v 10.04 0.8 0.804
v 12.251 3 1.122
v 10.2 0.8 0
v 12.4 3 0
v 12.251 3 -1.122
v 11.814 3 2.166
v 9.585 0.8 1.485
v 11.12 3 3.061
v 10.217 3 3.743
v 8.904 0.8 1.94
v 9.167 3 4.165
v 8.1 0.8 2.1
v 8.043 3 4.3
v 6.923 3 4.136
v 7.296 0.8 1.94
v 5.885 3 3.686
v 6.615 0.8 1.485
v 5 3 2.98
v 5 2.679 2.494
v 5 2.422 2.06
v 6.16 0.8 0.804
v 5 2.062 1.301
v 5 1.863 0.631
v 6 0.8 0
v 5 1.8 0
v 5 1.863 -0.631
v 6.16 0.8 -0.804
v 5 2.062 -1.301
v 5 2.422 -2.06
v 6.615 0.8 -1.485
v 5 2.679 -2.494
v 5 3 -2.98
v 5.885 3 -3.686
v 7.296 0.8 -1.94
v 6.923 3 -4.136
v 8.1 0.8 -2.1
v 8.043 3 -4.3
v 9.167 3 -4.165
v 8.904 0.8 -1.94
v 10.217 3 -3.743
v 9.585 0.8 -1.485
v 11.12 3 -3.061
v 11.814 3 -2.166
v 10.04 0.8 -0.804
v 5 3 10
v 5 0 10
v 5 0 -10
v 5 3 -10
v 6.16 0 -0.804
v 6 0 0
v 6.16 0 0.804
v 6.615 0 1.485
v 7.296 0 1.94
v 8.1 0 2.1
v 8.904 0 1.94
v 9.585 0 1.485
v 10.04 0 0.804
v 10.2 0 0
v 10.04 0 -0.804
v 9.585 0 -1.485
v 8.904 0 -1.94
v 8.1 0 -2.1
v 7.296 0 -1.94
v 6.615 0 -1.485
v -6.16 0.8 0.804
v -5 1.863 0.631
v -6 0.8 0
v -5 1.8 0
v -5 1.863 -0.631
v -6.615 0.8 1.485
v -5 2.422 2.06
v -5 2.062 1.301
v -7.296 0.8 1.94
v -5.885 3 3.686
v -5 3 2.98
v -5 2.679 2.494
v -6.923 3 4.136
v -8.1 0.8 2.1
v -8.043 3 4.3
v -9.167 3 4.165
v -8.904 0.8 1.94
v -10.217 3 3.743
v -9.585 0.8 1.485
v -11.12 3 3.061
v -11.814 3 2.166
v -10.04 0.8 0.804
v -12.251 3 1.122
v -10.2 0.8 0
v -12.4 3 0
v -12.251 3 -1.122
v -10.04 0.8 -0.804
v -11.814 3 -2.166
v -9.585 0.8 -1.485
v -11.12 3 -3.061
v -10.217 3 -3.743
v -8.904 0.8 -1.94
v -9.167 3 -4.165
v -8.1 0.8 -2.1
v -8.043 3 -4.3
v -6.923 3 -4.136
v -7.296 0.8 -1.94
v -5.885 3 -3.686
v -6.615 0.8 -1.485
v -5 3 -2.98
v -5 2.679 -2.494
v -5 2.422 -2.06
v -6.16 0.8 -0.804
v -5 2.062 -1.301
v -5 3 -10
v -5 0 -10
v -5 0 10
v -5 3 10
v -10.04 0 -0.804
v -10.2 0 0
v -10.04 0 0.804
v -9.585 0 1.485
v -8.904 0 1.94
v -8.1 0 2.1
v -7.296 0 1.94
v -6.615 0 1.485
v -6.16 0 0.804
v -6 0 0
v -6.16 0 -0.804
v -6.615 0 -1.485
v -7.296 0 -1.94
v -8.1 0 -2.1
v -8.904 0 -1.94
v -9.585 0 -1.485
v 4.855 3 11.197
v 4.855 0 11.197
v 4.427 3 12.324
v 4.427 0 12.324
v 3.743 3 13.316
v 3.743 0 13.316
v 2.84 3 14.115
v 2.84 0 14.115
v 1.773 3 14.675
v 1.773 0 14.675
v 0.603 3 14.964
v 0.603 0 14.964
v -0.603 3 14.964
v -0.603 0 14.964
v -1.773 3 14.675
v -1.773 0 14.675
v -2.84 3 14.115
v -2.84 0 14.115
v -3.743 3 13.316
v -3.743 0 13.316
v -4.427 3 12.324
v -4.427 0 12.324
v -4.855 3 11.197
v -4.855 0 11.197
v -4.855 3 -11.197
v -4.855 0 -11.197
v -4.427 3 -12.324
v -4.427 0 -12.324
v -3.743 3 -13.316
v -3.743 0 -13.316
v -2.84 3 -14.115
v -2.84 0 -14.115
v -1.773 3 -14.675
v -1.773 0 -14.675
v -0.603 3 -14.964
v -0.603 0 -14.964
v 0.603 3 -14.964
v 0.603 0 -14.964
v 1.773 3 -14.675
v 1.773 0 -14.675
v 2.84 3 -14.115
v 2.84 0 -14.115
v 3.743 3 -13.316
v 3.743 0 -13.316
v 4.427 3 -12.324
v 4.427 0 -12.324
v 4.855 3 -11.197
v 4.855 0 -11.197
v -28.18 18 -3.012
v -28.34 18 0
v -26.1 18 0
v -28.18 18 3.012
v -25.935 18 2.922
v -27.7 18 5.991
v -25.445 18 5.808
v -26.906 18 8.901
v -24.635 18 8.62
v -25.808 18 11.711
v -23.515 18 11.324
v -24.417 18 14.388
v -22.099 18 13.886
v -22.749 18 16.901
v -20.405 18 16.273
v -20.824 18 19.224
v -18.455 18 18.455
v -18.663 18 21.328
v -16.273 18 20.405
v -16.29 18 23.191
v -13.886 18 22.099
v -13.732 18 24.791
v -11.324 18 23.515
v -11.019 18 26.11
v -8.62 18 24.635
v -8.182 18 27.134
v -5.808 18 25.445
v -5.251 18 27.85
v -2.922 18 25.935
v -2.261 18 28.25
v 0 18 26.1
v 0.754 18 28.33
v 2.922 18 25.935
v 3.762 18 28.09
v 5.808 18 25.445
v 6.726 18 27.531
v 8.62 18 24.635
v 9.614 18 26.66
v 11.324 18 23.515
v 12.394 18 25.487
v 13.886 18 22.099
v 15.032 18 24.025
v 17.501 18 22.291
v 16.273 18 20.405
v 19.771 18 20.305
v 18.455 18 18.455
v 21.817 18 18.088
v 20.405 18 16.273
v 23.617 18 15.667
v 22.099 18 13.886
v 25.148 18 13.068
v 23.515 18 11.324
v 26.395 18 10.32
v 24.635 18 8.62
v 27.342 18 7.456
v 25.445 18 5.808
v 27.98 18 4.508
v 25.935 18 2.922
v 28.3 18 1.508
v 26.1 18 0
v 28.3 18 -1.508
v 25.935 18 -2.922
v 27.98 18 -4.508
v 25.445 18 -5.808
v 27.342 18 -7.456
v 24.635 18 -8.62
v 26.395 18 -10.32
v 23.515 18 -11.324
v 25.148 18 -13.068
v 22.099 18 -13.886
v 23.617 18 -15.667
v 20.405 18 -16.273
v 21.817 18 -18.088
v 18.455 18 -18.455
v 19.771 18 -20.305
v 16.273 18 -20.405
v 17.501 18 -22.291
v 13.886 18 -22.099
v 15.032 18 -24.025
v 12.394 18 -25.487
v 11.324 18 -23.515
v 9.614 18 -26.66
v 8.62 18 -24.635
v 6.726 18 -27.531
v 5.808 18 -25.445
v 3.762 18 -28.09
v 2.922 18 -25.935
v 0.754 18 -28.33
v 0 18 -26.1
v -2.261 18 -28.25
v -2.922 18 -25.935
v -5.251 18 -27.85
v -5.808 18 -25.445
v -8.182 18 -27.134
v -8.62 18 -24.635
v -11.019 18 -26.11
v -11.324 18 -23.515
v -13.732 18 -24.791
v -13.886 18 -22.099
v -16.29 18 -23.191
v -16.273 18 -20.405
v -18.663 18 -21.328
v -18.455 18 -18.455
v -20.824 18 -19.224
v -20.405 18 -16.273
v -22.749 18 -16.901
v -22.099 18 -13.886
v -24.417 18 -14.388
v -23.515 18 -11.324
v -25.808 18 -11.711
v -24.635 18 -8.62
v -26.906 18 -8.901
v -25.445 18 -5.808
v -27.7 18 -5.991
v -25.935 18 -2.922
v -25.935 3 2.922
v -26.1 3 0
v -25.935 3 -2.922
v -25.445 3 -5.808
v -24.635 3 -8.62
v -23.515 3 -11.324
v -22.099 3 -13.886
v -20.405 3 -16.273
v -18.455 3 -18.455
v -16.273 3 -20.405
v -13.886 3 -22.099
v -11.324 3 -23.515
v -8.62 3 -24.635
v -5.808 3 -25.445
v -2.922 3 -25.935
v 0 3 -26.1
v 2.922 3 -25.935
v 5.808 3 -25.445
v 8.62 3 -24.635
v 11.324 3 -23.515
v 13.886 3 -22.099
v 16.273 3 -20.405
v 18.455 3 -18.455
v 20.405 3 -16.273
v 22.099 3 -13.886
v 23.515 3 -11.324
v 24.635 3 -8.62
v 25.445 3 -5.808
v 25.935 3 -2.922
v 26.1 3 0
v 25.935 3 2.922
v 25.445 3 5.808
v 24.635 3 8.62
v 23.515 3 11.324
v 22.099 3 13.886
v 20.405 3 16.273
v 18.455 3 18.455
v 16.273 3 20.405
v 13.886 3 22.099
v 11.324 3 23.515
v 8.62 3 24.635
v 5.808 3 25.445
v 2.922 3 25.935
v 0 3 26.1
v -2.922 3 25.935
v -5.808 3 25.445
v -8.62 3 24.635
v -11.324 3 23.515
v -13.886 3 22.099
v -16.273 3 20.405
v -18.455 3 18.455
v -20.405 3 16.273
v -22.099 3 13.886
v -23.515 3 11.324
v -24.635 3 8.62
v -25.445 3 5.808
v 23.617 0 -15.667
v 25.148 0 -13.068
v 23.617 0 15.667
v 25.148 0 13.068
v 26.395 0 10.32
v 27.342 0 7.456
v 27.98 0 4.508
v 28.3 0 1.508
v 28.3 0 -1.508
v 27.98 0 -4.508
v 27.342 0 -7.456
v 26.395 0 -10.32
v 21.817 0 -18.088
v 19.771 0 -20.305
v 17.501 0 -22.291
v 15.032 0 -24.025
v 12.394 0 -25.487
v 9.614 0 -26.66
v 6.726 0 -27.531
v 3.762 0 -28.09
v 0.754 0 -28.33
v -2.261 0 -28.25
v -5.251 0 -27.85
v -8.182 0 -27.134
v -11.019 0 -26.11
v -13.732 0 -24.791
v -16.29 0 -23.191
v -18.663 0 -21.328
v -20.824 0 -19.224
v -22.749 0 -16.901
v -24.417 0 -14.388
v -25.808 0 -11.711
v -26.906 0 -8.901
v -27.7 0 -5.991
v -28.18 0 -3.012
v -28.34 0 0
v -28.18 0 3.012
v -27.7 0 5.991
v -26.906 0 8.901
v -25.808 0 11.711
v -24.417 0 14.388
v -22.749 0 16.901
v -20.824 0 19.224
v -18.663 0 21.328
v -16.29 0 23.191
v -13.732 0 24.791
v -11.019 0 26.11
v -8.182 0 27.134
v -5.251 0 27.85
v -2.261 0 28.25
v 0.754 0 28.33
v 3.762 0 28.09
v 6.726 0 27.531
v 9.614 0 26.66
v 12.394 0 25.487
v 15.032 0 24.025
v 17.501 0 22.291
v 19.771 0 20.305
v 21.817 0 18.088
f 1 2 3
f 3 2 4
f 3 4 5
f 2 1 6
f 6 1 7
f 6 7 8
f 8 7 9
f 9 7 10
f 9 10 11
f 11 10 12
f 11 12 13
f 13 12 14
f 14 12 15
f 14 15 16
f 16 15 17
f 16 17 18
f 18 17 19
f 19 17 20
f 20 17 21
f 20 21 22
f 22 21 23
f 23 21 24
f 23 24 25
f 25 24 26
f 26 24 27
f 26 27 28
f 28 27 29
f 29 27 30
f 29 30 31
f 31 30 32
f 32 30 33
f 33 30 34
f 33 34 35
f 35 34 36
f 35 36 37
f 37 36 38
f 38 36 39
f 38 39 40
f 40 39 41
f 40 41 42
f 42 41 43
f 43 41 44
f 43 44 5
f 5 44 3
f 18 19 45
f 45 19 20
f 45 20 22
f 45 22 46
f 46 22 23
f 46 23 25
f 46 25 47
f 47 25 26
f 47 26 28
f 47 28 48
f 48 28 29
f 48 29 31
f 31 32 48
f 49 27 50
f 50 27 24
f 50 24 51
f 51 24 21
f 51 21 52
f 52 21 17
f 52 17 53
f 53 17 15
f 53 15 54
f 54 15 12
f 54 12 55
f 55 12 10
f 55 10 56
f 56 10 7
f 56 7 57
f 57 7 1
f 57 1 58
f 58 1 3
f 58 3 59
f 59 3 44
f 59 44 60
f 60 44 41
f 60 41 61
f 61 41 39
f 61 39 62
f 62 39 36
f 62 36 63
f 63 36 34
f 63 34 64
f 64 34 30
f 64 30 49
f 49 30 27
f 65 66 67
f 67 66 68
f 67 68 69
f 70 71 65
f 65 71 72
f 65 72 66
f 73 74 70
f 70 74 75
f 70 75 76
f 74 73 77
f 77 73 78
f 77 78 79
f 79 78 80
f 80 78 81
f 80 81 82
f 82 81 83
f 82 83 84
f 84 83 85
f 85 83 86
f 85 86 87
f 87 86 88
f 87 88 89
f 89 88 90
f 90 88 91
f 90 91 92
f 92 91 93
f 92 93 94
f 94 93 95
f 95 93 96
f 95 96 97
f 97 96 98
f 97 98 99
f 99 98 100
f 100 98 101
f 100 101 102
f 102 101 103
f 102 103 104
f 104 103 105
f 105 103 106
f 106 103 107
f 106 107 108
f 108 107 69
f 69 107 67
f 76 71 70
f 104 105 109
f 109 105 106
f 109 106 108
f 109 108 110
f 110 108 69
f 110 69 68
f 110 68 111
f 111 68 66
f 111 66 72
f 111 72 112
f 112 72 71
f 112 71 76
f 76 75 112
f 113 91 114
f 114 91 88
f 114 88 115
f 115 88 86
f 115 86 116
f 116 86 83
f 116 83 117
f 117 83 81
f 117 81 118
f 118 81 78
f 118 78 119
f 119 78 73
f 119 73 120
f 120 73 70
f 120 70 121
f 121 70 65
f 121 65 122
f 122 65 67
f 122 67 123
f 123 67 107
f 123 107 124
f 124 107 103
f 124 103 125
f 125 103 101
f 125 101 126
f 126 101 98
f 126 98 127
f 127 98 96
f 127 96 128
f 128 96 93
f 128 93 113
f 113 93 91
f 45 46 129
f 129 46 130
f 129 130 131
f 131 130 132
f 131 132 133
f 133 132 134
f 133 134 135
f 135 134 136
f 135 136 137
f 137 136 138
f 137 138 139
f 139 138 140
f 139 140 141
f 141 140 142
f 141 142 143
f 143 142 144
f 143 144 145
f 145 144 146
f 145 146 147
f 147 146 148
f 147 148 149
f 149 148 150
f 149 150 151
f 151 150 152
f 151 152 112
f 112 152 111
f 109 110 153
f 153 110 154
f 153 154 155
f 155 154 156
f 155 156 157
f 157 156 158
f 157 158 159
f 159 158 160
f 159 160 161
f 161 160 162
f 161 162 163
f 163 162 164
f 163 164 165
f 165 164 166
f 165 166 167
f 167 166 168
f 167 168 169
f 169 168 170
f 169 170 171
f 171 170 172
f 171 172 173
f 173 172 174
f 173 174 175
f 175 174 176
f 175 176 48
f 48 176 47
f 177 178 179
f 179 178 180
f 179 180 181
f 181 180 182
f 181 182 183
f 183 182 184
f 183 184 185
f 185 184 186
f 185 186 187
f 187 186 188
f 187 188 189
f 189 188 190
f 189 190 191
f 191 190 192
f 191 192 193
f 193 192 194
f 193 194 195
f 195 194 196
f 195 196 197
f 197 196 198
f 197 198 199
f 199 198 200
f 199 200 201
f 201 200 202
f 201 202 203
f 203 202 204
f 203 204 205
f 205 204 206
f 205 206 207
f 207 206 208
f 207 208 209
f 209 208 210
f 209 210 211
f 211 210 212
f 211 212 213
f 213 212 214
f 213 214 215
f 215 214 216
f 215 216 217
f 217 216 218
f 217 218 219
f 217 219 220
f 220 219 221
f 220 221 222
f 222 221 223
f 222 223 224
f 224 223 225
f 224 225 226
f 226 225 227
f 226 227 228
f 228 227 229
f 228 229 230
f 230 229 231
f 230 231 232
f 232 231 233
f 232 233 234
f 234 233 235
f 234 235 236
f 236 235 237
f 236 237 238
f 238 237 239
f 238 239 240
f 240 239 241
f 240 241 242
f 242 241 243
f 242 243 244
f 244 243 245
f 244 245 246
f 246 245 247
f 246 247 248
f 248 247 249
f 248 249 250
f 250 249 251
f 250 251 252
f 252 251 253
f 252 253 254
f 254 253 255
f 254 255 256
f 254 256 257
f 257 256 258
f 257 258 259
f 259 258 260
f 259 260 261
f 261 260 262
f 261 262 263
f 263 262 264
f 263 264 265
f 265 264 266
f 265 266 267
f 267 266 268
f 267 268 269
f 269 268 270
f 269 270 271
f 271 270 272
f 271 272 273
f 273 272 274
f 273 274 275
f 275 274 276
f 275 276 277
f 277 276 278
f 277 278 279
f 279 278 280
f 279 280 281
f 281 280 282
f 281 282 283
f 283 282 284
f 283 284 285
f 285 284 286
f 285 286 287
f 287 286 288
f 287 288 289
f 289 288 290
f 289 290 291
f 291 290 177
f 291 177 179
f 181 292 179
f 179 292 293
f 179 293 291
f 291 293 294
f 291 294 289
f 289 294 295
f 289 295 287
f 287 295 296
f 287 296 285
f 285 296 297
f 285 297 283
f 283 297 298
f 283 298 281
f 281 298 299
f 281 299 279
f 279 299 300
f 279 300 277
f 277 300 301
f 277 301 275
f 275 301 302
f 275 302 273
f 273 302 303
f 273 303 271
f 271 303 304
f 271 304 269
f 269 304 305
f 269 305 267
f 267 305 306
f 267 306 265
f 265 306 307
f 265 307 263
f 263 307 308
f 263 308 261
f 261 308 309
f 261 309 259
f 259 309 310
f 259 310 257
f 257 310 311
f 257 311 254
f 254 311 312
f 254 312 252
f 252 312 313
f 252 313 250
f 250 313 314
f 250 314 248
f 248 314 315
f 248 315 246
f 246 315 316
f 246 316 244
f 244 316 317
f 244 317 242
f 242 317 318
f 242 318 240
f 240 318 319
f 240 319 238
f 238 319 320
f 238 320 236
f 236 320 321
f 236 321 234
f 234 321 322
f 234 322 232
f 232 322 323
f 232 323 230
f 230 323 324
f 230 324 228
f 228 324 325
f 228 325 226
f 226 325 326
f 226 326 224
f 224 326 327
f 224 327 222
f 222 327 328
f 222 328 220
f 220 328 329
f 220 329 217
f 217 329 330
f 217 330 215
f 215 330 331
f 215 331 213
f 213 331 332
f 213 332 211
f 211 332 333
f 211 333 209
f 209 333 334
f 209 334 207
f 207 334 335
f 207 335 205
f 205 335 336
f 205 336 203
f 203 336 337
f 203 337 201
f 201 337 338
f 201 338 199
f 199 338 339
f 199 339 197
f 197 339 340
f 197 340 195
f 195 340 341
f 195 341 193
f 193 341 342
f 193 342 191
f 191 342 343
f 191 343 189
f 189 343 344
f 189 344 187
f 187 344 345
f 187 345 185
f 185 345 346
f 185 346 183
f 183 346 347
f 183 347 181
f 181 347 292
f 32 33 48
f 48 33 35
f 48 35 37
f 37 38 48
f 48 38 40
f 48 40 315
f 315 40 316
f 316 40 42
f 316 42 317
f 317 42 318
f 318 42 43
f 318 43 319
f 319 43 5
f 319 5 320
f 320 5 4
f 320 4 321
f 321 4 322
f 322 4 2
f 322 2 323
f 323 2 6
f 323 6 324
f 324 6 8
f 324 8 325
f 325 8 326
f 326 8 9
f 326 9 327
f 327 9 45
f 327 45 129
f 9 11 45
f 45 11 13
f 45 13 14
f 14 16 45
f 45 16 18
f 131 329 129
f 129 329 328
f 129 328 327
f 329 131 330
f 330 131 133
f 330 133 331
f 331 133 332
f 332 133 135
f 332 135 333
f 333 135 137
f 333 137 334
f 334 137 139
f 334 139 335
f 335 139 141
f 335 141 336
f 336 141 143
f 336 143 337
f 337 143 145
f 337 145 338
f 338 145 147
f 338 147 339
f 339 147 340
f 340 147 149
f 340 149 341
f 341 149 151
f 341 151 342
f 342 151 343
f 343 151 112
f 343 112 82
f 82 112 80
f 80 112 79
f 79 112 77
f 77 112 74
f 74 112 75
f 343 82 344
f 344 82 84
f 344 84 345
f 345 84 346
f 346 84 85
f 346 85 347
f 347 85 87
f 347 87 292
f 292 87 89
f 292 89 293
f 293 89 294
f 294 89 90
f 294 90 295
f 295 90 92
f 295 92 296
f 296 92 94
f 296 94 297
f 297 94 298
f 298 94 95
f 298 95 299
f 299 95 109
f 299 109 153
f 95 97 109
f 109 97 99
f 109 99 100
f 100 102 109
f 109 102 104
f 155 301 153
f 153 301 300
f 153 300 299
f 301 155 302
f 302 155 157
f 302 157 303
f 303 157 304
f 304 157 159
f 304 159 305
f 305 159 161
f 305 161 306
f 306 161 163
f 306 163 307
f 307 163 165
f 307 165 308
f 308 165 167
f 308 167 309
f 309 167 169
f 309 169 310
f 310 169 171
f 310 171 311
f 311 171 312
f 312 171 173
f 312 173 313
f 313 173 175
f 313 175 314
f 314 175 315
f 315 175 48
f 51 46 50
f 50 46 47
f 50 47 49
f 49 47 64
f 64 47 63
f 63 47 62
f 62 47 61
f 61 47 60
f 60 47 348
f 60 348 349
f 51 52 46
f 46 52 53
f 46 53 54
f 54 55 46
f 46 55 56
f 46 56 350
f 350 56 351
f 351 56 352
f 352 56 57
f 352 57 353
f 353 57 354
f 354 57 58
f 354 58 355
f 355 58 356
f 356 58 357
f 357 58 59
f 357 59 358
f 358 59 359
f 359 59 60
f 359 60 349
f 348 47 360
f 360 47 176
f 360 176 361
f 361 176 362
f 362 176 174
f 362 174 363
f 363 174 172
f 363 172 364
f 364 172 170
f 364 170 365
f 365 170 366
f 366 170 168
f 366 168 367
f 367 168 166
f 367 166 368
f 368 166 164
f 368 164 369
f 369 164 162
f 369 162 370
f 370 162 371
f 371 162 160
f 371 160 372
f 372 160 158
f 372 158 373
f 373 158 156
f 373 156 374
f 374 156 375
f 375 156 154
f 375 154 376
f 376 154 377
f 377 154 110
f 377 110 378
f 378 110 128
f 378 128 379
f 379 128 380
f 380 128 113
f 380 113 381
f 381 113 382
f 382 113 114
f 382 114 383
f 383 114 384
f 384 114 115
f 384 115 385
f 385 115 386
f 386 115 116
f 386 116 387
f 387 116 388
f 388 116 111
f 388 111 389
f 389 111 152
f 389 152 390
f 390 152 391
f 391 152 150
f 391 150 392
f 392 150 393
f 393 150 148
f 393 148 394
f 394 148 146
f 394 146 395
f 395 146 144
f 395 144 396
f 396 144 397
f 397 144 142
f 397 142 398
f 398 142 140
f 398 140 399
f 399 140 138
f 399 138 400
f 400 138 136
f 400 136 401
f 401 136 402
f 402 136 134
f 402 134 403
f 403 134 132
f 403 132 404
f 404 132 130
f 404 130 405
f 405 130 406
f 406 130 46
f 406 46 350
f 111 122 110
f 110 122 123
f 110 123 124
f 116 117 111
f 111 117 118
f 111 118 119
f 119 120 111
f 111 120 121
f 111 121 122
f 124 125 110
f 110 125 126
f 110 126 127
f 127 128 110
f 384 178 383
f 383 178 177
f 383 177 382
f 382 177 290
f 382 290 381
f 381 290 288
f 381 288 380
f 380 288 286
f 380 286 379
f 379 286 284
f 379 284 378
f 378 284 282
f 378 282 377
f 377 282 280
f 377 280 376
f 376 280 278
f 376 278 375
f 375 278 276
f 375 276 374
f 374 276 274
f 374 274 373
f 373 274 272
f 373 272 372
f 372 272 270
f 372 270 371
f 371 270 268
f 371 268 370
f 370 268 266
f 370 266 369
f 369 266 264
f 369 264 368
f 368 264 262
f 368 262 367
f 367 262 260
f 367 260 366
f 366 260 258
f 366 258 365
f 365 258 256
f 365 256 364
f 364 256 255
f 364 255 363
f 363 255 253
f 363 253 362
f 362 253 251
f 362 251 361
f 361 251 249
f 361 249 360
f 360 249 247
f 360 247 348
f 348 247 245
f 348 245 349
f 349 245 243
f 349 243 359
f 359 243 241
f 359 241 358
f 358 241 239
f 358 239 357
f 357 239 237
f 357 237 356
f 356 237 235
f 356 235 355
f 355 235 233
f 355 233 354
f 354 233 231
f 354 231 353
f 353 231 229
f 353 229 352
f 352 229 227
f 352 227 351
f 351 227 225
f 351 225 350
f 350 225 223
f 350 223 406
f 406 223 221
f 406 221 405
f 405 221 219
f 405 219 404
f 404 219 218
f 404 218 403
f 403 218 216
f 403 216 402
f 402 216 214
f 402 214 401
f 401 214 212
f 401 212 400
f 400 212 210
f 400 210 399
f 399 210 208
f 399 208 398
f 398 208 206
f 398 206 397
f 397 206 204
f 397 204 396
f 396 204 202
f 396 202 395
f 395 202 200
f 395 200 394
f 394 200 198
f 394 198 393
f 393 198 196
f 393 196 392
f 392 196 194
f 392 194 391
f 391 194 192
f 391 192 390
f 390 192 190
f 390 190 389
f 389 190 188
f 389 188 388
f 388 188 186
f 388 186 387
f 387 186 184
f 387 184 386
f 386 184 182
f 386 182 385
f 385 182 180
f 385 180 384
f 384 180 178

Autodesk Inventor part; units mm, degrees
ref_plane "YZ Plane" through (0, 0, 0) normal (1, 0, 0) x (0, 1, 0)
ref_plane "XZ Plane" through (0, 0, 0) normal (0, 1, 0) x (-1, 0, 0)
ref_plane "XY Plane" through (0, 0, 0) normal (0, 0, 1) x (1, 0, 0)
sketch "Эскиз1" plane through (0, 0, 0) normal (0, 0, 1) x (1, 0, 0)
  line L0 (0, 0) -> (-28.3405, 0)
  line L1 (-28.3405, 0) -> (-28.3405, 3)
  line L2 (-28.3405, 3) -> (0, 3)
  line L3 (0, 3) -> (0, 0)
  line L4 (-28.3405, 0) -> (-26.0995, 0)
  line L5 (-26.0995, 0) -> (-26.0995, 18)
  line L6 (-26.0995, 18) -> (-28.3405, 18)
  line L7 (-28.3405, 18) -> (-28.3405, 0)
  line L8 (0, -3.6) -> (0, 21.6) projected
  point P0 (-26.0995, 3)
  dimension "d0" = 28.3405
  dimension "d1" = 3
  dimension "d2" = 2.241
  dimension "d3" = 18
revolve "Вращение1" add sketch "Эскиз1" angle 360 about axis through (0, -10, 0) along (0, 1, 0)
sketch "Эскиз2" plane through (0, 3, 0) normal (0, 1, 0) x (1, 0, 0)
  line L0 (0, 10) -> (0, -10) construction
  line L1 (-5, 10) -> (-5, -10)
  line L2 (5, -10) -> (5, 10)
  arc A0 (5, 10) -> (-5, 10) centre (0, 10) ccw
  arc A1 (-5, -10) -> (5, -10) centre (0, -10) ccw
  circle A2 centre (8.1, 0) radius 2.1
  circle A3 centre (-8.1, 0) radius 2.1
  point P0 (0, 0)
  dimension "d5" = 10
  dimension "d6" = 10
  dimension "d7" = 4.2
  dimension "d8" = 3.1
extrude "Выдавливание1" cut sketch "Эскиз2" against normal blind 10
chamfer "Фаска1" distance 2.2 angle 45 1 edges at (-10.2, 3, 0)
chamfer "Фаска2" distance 2.2 angle 45 1 edges at (6, 3, 0)
properties part number "кроватка"
